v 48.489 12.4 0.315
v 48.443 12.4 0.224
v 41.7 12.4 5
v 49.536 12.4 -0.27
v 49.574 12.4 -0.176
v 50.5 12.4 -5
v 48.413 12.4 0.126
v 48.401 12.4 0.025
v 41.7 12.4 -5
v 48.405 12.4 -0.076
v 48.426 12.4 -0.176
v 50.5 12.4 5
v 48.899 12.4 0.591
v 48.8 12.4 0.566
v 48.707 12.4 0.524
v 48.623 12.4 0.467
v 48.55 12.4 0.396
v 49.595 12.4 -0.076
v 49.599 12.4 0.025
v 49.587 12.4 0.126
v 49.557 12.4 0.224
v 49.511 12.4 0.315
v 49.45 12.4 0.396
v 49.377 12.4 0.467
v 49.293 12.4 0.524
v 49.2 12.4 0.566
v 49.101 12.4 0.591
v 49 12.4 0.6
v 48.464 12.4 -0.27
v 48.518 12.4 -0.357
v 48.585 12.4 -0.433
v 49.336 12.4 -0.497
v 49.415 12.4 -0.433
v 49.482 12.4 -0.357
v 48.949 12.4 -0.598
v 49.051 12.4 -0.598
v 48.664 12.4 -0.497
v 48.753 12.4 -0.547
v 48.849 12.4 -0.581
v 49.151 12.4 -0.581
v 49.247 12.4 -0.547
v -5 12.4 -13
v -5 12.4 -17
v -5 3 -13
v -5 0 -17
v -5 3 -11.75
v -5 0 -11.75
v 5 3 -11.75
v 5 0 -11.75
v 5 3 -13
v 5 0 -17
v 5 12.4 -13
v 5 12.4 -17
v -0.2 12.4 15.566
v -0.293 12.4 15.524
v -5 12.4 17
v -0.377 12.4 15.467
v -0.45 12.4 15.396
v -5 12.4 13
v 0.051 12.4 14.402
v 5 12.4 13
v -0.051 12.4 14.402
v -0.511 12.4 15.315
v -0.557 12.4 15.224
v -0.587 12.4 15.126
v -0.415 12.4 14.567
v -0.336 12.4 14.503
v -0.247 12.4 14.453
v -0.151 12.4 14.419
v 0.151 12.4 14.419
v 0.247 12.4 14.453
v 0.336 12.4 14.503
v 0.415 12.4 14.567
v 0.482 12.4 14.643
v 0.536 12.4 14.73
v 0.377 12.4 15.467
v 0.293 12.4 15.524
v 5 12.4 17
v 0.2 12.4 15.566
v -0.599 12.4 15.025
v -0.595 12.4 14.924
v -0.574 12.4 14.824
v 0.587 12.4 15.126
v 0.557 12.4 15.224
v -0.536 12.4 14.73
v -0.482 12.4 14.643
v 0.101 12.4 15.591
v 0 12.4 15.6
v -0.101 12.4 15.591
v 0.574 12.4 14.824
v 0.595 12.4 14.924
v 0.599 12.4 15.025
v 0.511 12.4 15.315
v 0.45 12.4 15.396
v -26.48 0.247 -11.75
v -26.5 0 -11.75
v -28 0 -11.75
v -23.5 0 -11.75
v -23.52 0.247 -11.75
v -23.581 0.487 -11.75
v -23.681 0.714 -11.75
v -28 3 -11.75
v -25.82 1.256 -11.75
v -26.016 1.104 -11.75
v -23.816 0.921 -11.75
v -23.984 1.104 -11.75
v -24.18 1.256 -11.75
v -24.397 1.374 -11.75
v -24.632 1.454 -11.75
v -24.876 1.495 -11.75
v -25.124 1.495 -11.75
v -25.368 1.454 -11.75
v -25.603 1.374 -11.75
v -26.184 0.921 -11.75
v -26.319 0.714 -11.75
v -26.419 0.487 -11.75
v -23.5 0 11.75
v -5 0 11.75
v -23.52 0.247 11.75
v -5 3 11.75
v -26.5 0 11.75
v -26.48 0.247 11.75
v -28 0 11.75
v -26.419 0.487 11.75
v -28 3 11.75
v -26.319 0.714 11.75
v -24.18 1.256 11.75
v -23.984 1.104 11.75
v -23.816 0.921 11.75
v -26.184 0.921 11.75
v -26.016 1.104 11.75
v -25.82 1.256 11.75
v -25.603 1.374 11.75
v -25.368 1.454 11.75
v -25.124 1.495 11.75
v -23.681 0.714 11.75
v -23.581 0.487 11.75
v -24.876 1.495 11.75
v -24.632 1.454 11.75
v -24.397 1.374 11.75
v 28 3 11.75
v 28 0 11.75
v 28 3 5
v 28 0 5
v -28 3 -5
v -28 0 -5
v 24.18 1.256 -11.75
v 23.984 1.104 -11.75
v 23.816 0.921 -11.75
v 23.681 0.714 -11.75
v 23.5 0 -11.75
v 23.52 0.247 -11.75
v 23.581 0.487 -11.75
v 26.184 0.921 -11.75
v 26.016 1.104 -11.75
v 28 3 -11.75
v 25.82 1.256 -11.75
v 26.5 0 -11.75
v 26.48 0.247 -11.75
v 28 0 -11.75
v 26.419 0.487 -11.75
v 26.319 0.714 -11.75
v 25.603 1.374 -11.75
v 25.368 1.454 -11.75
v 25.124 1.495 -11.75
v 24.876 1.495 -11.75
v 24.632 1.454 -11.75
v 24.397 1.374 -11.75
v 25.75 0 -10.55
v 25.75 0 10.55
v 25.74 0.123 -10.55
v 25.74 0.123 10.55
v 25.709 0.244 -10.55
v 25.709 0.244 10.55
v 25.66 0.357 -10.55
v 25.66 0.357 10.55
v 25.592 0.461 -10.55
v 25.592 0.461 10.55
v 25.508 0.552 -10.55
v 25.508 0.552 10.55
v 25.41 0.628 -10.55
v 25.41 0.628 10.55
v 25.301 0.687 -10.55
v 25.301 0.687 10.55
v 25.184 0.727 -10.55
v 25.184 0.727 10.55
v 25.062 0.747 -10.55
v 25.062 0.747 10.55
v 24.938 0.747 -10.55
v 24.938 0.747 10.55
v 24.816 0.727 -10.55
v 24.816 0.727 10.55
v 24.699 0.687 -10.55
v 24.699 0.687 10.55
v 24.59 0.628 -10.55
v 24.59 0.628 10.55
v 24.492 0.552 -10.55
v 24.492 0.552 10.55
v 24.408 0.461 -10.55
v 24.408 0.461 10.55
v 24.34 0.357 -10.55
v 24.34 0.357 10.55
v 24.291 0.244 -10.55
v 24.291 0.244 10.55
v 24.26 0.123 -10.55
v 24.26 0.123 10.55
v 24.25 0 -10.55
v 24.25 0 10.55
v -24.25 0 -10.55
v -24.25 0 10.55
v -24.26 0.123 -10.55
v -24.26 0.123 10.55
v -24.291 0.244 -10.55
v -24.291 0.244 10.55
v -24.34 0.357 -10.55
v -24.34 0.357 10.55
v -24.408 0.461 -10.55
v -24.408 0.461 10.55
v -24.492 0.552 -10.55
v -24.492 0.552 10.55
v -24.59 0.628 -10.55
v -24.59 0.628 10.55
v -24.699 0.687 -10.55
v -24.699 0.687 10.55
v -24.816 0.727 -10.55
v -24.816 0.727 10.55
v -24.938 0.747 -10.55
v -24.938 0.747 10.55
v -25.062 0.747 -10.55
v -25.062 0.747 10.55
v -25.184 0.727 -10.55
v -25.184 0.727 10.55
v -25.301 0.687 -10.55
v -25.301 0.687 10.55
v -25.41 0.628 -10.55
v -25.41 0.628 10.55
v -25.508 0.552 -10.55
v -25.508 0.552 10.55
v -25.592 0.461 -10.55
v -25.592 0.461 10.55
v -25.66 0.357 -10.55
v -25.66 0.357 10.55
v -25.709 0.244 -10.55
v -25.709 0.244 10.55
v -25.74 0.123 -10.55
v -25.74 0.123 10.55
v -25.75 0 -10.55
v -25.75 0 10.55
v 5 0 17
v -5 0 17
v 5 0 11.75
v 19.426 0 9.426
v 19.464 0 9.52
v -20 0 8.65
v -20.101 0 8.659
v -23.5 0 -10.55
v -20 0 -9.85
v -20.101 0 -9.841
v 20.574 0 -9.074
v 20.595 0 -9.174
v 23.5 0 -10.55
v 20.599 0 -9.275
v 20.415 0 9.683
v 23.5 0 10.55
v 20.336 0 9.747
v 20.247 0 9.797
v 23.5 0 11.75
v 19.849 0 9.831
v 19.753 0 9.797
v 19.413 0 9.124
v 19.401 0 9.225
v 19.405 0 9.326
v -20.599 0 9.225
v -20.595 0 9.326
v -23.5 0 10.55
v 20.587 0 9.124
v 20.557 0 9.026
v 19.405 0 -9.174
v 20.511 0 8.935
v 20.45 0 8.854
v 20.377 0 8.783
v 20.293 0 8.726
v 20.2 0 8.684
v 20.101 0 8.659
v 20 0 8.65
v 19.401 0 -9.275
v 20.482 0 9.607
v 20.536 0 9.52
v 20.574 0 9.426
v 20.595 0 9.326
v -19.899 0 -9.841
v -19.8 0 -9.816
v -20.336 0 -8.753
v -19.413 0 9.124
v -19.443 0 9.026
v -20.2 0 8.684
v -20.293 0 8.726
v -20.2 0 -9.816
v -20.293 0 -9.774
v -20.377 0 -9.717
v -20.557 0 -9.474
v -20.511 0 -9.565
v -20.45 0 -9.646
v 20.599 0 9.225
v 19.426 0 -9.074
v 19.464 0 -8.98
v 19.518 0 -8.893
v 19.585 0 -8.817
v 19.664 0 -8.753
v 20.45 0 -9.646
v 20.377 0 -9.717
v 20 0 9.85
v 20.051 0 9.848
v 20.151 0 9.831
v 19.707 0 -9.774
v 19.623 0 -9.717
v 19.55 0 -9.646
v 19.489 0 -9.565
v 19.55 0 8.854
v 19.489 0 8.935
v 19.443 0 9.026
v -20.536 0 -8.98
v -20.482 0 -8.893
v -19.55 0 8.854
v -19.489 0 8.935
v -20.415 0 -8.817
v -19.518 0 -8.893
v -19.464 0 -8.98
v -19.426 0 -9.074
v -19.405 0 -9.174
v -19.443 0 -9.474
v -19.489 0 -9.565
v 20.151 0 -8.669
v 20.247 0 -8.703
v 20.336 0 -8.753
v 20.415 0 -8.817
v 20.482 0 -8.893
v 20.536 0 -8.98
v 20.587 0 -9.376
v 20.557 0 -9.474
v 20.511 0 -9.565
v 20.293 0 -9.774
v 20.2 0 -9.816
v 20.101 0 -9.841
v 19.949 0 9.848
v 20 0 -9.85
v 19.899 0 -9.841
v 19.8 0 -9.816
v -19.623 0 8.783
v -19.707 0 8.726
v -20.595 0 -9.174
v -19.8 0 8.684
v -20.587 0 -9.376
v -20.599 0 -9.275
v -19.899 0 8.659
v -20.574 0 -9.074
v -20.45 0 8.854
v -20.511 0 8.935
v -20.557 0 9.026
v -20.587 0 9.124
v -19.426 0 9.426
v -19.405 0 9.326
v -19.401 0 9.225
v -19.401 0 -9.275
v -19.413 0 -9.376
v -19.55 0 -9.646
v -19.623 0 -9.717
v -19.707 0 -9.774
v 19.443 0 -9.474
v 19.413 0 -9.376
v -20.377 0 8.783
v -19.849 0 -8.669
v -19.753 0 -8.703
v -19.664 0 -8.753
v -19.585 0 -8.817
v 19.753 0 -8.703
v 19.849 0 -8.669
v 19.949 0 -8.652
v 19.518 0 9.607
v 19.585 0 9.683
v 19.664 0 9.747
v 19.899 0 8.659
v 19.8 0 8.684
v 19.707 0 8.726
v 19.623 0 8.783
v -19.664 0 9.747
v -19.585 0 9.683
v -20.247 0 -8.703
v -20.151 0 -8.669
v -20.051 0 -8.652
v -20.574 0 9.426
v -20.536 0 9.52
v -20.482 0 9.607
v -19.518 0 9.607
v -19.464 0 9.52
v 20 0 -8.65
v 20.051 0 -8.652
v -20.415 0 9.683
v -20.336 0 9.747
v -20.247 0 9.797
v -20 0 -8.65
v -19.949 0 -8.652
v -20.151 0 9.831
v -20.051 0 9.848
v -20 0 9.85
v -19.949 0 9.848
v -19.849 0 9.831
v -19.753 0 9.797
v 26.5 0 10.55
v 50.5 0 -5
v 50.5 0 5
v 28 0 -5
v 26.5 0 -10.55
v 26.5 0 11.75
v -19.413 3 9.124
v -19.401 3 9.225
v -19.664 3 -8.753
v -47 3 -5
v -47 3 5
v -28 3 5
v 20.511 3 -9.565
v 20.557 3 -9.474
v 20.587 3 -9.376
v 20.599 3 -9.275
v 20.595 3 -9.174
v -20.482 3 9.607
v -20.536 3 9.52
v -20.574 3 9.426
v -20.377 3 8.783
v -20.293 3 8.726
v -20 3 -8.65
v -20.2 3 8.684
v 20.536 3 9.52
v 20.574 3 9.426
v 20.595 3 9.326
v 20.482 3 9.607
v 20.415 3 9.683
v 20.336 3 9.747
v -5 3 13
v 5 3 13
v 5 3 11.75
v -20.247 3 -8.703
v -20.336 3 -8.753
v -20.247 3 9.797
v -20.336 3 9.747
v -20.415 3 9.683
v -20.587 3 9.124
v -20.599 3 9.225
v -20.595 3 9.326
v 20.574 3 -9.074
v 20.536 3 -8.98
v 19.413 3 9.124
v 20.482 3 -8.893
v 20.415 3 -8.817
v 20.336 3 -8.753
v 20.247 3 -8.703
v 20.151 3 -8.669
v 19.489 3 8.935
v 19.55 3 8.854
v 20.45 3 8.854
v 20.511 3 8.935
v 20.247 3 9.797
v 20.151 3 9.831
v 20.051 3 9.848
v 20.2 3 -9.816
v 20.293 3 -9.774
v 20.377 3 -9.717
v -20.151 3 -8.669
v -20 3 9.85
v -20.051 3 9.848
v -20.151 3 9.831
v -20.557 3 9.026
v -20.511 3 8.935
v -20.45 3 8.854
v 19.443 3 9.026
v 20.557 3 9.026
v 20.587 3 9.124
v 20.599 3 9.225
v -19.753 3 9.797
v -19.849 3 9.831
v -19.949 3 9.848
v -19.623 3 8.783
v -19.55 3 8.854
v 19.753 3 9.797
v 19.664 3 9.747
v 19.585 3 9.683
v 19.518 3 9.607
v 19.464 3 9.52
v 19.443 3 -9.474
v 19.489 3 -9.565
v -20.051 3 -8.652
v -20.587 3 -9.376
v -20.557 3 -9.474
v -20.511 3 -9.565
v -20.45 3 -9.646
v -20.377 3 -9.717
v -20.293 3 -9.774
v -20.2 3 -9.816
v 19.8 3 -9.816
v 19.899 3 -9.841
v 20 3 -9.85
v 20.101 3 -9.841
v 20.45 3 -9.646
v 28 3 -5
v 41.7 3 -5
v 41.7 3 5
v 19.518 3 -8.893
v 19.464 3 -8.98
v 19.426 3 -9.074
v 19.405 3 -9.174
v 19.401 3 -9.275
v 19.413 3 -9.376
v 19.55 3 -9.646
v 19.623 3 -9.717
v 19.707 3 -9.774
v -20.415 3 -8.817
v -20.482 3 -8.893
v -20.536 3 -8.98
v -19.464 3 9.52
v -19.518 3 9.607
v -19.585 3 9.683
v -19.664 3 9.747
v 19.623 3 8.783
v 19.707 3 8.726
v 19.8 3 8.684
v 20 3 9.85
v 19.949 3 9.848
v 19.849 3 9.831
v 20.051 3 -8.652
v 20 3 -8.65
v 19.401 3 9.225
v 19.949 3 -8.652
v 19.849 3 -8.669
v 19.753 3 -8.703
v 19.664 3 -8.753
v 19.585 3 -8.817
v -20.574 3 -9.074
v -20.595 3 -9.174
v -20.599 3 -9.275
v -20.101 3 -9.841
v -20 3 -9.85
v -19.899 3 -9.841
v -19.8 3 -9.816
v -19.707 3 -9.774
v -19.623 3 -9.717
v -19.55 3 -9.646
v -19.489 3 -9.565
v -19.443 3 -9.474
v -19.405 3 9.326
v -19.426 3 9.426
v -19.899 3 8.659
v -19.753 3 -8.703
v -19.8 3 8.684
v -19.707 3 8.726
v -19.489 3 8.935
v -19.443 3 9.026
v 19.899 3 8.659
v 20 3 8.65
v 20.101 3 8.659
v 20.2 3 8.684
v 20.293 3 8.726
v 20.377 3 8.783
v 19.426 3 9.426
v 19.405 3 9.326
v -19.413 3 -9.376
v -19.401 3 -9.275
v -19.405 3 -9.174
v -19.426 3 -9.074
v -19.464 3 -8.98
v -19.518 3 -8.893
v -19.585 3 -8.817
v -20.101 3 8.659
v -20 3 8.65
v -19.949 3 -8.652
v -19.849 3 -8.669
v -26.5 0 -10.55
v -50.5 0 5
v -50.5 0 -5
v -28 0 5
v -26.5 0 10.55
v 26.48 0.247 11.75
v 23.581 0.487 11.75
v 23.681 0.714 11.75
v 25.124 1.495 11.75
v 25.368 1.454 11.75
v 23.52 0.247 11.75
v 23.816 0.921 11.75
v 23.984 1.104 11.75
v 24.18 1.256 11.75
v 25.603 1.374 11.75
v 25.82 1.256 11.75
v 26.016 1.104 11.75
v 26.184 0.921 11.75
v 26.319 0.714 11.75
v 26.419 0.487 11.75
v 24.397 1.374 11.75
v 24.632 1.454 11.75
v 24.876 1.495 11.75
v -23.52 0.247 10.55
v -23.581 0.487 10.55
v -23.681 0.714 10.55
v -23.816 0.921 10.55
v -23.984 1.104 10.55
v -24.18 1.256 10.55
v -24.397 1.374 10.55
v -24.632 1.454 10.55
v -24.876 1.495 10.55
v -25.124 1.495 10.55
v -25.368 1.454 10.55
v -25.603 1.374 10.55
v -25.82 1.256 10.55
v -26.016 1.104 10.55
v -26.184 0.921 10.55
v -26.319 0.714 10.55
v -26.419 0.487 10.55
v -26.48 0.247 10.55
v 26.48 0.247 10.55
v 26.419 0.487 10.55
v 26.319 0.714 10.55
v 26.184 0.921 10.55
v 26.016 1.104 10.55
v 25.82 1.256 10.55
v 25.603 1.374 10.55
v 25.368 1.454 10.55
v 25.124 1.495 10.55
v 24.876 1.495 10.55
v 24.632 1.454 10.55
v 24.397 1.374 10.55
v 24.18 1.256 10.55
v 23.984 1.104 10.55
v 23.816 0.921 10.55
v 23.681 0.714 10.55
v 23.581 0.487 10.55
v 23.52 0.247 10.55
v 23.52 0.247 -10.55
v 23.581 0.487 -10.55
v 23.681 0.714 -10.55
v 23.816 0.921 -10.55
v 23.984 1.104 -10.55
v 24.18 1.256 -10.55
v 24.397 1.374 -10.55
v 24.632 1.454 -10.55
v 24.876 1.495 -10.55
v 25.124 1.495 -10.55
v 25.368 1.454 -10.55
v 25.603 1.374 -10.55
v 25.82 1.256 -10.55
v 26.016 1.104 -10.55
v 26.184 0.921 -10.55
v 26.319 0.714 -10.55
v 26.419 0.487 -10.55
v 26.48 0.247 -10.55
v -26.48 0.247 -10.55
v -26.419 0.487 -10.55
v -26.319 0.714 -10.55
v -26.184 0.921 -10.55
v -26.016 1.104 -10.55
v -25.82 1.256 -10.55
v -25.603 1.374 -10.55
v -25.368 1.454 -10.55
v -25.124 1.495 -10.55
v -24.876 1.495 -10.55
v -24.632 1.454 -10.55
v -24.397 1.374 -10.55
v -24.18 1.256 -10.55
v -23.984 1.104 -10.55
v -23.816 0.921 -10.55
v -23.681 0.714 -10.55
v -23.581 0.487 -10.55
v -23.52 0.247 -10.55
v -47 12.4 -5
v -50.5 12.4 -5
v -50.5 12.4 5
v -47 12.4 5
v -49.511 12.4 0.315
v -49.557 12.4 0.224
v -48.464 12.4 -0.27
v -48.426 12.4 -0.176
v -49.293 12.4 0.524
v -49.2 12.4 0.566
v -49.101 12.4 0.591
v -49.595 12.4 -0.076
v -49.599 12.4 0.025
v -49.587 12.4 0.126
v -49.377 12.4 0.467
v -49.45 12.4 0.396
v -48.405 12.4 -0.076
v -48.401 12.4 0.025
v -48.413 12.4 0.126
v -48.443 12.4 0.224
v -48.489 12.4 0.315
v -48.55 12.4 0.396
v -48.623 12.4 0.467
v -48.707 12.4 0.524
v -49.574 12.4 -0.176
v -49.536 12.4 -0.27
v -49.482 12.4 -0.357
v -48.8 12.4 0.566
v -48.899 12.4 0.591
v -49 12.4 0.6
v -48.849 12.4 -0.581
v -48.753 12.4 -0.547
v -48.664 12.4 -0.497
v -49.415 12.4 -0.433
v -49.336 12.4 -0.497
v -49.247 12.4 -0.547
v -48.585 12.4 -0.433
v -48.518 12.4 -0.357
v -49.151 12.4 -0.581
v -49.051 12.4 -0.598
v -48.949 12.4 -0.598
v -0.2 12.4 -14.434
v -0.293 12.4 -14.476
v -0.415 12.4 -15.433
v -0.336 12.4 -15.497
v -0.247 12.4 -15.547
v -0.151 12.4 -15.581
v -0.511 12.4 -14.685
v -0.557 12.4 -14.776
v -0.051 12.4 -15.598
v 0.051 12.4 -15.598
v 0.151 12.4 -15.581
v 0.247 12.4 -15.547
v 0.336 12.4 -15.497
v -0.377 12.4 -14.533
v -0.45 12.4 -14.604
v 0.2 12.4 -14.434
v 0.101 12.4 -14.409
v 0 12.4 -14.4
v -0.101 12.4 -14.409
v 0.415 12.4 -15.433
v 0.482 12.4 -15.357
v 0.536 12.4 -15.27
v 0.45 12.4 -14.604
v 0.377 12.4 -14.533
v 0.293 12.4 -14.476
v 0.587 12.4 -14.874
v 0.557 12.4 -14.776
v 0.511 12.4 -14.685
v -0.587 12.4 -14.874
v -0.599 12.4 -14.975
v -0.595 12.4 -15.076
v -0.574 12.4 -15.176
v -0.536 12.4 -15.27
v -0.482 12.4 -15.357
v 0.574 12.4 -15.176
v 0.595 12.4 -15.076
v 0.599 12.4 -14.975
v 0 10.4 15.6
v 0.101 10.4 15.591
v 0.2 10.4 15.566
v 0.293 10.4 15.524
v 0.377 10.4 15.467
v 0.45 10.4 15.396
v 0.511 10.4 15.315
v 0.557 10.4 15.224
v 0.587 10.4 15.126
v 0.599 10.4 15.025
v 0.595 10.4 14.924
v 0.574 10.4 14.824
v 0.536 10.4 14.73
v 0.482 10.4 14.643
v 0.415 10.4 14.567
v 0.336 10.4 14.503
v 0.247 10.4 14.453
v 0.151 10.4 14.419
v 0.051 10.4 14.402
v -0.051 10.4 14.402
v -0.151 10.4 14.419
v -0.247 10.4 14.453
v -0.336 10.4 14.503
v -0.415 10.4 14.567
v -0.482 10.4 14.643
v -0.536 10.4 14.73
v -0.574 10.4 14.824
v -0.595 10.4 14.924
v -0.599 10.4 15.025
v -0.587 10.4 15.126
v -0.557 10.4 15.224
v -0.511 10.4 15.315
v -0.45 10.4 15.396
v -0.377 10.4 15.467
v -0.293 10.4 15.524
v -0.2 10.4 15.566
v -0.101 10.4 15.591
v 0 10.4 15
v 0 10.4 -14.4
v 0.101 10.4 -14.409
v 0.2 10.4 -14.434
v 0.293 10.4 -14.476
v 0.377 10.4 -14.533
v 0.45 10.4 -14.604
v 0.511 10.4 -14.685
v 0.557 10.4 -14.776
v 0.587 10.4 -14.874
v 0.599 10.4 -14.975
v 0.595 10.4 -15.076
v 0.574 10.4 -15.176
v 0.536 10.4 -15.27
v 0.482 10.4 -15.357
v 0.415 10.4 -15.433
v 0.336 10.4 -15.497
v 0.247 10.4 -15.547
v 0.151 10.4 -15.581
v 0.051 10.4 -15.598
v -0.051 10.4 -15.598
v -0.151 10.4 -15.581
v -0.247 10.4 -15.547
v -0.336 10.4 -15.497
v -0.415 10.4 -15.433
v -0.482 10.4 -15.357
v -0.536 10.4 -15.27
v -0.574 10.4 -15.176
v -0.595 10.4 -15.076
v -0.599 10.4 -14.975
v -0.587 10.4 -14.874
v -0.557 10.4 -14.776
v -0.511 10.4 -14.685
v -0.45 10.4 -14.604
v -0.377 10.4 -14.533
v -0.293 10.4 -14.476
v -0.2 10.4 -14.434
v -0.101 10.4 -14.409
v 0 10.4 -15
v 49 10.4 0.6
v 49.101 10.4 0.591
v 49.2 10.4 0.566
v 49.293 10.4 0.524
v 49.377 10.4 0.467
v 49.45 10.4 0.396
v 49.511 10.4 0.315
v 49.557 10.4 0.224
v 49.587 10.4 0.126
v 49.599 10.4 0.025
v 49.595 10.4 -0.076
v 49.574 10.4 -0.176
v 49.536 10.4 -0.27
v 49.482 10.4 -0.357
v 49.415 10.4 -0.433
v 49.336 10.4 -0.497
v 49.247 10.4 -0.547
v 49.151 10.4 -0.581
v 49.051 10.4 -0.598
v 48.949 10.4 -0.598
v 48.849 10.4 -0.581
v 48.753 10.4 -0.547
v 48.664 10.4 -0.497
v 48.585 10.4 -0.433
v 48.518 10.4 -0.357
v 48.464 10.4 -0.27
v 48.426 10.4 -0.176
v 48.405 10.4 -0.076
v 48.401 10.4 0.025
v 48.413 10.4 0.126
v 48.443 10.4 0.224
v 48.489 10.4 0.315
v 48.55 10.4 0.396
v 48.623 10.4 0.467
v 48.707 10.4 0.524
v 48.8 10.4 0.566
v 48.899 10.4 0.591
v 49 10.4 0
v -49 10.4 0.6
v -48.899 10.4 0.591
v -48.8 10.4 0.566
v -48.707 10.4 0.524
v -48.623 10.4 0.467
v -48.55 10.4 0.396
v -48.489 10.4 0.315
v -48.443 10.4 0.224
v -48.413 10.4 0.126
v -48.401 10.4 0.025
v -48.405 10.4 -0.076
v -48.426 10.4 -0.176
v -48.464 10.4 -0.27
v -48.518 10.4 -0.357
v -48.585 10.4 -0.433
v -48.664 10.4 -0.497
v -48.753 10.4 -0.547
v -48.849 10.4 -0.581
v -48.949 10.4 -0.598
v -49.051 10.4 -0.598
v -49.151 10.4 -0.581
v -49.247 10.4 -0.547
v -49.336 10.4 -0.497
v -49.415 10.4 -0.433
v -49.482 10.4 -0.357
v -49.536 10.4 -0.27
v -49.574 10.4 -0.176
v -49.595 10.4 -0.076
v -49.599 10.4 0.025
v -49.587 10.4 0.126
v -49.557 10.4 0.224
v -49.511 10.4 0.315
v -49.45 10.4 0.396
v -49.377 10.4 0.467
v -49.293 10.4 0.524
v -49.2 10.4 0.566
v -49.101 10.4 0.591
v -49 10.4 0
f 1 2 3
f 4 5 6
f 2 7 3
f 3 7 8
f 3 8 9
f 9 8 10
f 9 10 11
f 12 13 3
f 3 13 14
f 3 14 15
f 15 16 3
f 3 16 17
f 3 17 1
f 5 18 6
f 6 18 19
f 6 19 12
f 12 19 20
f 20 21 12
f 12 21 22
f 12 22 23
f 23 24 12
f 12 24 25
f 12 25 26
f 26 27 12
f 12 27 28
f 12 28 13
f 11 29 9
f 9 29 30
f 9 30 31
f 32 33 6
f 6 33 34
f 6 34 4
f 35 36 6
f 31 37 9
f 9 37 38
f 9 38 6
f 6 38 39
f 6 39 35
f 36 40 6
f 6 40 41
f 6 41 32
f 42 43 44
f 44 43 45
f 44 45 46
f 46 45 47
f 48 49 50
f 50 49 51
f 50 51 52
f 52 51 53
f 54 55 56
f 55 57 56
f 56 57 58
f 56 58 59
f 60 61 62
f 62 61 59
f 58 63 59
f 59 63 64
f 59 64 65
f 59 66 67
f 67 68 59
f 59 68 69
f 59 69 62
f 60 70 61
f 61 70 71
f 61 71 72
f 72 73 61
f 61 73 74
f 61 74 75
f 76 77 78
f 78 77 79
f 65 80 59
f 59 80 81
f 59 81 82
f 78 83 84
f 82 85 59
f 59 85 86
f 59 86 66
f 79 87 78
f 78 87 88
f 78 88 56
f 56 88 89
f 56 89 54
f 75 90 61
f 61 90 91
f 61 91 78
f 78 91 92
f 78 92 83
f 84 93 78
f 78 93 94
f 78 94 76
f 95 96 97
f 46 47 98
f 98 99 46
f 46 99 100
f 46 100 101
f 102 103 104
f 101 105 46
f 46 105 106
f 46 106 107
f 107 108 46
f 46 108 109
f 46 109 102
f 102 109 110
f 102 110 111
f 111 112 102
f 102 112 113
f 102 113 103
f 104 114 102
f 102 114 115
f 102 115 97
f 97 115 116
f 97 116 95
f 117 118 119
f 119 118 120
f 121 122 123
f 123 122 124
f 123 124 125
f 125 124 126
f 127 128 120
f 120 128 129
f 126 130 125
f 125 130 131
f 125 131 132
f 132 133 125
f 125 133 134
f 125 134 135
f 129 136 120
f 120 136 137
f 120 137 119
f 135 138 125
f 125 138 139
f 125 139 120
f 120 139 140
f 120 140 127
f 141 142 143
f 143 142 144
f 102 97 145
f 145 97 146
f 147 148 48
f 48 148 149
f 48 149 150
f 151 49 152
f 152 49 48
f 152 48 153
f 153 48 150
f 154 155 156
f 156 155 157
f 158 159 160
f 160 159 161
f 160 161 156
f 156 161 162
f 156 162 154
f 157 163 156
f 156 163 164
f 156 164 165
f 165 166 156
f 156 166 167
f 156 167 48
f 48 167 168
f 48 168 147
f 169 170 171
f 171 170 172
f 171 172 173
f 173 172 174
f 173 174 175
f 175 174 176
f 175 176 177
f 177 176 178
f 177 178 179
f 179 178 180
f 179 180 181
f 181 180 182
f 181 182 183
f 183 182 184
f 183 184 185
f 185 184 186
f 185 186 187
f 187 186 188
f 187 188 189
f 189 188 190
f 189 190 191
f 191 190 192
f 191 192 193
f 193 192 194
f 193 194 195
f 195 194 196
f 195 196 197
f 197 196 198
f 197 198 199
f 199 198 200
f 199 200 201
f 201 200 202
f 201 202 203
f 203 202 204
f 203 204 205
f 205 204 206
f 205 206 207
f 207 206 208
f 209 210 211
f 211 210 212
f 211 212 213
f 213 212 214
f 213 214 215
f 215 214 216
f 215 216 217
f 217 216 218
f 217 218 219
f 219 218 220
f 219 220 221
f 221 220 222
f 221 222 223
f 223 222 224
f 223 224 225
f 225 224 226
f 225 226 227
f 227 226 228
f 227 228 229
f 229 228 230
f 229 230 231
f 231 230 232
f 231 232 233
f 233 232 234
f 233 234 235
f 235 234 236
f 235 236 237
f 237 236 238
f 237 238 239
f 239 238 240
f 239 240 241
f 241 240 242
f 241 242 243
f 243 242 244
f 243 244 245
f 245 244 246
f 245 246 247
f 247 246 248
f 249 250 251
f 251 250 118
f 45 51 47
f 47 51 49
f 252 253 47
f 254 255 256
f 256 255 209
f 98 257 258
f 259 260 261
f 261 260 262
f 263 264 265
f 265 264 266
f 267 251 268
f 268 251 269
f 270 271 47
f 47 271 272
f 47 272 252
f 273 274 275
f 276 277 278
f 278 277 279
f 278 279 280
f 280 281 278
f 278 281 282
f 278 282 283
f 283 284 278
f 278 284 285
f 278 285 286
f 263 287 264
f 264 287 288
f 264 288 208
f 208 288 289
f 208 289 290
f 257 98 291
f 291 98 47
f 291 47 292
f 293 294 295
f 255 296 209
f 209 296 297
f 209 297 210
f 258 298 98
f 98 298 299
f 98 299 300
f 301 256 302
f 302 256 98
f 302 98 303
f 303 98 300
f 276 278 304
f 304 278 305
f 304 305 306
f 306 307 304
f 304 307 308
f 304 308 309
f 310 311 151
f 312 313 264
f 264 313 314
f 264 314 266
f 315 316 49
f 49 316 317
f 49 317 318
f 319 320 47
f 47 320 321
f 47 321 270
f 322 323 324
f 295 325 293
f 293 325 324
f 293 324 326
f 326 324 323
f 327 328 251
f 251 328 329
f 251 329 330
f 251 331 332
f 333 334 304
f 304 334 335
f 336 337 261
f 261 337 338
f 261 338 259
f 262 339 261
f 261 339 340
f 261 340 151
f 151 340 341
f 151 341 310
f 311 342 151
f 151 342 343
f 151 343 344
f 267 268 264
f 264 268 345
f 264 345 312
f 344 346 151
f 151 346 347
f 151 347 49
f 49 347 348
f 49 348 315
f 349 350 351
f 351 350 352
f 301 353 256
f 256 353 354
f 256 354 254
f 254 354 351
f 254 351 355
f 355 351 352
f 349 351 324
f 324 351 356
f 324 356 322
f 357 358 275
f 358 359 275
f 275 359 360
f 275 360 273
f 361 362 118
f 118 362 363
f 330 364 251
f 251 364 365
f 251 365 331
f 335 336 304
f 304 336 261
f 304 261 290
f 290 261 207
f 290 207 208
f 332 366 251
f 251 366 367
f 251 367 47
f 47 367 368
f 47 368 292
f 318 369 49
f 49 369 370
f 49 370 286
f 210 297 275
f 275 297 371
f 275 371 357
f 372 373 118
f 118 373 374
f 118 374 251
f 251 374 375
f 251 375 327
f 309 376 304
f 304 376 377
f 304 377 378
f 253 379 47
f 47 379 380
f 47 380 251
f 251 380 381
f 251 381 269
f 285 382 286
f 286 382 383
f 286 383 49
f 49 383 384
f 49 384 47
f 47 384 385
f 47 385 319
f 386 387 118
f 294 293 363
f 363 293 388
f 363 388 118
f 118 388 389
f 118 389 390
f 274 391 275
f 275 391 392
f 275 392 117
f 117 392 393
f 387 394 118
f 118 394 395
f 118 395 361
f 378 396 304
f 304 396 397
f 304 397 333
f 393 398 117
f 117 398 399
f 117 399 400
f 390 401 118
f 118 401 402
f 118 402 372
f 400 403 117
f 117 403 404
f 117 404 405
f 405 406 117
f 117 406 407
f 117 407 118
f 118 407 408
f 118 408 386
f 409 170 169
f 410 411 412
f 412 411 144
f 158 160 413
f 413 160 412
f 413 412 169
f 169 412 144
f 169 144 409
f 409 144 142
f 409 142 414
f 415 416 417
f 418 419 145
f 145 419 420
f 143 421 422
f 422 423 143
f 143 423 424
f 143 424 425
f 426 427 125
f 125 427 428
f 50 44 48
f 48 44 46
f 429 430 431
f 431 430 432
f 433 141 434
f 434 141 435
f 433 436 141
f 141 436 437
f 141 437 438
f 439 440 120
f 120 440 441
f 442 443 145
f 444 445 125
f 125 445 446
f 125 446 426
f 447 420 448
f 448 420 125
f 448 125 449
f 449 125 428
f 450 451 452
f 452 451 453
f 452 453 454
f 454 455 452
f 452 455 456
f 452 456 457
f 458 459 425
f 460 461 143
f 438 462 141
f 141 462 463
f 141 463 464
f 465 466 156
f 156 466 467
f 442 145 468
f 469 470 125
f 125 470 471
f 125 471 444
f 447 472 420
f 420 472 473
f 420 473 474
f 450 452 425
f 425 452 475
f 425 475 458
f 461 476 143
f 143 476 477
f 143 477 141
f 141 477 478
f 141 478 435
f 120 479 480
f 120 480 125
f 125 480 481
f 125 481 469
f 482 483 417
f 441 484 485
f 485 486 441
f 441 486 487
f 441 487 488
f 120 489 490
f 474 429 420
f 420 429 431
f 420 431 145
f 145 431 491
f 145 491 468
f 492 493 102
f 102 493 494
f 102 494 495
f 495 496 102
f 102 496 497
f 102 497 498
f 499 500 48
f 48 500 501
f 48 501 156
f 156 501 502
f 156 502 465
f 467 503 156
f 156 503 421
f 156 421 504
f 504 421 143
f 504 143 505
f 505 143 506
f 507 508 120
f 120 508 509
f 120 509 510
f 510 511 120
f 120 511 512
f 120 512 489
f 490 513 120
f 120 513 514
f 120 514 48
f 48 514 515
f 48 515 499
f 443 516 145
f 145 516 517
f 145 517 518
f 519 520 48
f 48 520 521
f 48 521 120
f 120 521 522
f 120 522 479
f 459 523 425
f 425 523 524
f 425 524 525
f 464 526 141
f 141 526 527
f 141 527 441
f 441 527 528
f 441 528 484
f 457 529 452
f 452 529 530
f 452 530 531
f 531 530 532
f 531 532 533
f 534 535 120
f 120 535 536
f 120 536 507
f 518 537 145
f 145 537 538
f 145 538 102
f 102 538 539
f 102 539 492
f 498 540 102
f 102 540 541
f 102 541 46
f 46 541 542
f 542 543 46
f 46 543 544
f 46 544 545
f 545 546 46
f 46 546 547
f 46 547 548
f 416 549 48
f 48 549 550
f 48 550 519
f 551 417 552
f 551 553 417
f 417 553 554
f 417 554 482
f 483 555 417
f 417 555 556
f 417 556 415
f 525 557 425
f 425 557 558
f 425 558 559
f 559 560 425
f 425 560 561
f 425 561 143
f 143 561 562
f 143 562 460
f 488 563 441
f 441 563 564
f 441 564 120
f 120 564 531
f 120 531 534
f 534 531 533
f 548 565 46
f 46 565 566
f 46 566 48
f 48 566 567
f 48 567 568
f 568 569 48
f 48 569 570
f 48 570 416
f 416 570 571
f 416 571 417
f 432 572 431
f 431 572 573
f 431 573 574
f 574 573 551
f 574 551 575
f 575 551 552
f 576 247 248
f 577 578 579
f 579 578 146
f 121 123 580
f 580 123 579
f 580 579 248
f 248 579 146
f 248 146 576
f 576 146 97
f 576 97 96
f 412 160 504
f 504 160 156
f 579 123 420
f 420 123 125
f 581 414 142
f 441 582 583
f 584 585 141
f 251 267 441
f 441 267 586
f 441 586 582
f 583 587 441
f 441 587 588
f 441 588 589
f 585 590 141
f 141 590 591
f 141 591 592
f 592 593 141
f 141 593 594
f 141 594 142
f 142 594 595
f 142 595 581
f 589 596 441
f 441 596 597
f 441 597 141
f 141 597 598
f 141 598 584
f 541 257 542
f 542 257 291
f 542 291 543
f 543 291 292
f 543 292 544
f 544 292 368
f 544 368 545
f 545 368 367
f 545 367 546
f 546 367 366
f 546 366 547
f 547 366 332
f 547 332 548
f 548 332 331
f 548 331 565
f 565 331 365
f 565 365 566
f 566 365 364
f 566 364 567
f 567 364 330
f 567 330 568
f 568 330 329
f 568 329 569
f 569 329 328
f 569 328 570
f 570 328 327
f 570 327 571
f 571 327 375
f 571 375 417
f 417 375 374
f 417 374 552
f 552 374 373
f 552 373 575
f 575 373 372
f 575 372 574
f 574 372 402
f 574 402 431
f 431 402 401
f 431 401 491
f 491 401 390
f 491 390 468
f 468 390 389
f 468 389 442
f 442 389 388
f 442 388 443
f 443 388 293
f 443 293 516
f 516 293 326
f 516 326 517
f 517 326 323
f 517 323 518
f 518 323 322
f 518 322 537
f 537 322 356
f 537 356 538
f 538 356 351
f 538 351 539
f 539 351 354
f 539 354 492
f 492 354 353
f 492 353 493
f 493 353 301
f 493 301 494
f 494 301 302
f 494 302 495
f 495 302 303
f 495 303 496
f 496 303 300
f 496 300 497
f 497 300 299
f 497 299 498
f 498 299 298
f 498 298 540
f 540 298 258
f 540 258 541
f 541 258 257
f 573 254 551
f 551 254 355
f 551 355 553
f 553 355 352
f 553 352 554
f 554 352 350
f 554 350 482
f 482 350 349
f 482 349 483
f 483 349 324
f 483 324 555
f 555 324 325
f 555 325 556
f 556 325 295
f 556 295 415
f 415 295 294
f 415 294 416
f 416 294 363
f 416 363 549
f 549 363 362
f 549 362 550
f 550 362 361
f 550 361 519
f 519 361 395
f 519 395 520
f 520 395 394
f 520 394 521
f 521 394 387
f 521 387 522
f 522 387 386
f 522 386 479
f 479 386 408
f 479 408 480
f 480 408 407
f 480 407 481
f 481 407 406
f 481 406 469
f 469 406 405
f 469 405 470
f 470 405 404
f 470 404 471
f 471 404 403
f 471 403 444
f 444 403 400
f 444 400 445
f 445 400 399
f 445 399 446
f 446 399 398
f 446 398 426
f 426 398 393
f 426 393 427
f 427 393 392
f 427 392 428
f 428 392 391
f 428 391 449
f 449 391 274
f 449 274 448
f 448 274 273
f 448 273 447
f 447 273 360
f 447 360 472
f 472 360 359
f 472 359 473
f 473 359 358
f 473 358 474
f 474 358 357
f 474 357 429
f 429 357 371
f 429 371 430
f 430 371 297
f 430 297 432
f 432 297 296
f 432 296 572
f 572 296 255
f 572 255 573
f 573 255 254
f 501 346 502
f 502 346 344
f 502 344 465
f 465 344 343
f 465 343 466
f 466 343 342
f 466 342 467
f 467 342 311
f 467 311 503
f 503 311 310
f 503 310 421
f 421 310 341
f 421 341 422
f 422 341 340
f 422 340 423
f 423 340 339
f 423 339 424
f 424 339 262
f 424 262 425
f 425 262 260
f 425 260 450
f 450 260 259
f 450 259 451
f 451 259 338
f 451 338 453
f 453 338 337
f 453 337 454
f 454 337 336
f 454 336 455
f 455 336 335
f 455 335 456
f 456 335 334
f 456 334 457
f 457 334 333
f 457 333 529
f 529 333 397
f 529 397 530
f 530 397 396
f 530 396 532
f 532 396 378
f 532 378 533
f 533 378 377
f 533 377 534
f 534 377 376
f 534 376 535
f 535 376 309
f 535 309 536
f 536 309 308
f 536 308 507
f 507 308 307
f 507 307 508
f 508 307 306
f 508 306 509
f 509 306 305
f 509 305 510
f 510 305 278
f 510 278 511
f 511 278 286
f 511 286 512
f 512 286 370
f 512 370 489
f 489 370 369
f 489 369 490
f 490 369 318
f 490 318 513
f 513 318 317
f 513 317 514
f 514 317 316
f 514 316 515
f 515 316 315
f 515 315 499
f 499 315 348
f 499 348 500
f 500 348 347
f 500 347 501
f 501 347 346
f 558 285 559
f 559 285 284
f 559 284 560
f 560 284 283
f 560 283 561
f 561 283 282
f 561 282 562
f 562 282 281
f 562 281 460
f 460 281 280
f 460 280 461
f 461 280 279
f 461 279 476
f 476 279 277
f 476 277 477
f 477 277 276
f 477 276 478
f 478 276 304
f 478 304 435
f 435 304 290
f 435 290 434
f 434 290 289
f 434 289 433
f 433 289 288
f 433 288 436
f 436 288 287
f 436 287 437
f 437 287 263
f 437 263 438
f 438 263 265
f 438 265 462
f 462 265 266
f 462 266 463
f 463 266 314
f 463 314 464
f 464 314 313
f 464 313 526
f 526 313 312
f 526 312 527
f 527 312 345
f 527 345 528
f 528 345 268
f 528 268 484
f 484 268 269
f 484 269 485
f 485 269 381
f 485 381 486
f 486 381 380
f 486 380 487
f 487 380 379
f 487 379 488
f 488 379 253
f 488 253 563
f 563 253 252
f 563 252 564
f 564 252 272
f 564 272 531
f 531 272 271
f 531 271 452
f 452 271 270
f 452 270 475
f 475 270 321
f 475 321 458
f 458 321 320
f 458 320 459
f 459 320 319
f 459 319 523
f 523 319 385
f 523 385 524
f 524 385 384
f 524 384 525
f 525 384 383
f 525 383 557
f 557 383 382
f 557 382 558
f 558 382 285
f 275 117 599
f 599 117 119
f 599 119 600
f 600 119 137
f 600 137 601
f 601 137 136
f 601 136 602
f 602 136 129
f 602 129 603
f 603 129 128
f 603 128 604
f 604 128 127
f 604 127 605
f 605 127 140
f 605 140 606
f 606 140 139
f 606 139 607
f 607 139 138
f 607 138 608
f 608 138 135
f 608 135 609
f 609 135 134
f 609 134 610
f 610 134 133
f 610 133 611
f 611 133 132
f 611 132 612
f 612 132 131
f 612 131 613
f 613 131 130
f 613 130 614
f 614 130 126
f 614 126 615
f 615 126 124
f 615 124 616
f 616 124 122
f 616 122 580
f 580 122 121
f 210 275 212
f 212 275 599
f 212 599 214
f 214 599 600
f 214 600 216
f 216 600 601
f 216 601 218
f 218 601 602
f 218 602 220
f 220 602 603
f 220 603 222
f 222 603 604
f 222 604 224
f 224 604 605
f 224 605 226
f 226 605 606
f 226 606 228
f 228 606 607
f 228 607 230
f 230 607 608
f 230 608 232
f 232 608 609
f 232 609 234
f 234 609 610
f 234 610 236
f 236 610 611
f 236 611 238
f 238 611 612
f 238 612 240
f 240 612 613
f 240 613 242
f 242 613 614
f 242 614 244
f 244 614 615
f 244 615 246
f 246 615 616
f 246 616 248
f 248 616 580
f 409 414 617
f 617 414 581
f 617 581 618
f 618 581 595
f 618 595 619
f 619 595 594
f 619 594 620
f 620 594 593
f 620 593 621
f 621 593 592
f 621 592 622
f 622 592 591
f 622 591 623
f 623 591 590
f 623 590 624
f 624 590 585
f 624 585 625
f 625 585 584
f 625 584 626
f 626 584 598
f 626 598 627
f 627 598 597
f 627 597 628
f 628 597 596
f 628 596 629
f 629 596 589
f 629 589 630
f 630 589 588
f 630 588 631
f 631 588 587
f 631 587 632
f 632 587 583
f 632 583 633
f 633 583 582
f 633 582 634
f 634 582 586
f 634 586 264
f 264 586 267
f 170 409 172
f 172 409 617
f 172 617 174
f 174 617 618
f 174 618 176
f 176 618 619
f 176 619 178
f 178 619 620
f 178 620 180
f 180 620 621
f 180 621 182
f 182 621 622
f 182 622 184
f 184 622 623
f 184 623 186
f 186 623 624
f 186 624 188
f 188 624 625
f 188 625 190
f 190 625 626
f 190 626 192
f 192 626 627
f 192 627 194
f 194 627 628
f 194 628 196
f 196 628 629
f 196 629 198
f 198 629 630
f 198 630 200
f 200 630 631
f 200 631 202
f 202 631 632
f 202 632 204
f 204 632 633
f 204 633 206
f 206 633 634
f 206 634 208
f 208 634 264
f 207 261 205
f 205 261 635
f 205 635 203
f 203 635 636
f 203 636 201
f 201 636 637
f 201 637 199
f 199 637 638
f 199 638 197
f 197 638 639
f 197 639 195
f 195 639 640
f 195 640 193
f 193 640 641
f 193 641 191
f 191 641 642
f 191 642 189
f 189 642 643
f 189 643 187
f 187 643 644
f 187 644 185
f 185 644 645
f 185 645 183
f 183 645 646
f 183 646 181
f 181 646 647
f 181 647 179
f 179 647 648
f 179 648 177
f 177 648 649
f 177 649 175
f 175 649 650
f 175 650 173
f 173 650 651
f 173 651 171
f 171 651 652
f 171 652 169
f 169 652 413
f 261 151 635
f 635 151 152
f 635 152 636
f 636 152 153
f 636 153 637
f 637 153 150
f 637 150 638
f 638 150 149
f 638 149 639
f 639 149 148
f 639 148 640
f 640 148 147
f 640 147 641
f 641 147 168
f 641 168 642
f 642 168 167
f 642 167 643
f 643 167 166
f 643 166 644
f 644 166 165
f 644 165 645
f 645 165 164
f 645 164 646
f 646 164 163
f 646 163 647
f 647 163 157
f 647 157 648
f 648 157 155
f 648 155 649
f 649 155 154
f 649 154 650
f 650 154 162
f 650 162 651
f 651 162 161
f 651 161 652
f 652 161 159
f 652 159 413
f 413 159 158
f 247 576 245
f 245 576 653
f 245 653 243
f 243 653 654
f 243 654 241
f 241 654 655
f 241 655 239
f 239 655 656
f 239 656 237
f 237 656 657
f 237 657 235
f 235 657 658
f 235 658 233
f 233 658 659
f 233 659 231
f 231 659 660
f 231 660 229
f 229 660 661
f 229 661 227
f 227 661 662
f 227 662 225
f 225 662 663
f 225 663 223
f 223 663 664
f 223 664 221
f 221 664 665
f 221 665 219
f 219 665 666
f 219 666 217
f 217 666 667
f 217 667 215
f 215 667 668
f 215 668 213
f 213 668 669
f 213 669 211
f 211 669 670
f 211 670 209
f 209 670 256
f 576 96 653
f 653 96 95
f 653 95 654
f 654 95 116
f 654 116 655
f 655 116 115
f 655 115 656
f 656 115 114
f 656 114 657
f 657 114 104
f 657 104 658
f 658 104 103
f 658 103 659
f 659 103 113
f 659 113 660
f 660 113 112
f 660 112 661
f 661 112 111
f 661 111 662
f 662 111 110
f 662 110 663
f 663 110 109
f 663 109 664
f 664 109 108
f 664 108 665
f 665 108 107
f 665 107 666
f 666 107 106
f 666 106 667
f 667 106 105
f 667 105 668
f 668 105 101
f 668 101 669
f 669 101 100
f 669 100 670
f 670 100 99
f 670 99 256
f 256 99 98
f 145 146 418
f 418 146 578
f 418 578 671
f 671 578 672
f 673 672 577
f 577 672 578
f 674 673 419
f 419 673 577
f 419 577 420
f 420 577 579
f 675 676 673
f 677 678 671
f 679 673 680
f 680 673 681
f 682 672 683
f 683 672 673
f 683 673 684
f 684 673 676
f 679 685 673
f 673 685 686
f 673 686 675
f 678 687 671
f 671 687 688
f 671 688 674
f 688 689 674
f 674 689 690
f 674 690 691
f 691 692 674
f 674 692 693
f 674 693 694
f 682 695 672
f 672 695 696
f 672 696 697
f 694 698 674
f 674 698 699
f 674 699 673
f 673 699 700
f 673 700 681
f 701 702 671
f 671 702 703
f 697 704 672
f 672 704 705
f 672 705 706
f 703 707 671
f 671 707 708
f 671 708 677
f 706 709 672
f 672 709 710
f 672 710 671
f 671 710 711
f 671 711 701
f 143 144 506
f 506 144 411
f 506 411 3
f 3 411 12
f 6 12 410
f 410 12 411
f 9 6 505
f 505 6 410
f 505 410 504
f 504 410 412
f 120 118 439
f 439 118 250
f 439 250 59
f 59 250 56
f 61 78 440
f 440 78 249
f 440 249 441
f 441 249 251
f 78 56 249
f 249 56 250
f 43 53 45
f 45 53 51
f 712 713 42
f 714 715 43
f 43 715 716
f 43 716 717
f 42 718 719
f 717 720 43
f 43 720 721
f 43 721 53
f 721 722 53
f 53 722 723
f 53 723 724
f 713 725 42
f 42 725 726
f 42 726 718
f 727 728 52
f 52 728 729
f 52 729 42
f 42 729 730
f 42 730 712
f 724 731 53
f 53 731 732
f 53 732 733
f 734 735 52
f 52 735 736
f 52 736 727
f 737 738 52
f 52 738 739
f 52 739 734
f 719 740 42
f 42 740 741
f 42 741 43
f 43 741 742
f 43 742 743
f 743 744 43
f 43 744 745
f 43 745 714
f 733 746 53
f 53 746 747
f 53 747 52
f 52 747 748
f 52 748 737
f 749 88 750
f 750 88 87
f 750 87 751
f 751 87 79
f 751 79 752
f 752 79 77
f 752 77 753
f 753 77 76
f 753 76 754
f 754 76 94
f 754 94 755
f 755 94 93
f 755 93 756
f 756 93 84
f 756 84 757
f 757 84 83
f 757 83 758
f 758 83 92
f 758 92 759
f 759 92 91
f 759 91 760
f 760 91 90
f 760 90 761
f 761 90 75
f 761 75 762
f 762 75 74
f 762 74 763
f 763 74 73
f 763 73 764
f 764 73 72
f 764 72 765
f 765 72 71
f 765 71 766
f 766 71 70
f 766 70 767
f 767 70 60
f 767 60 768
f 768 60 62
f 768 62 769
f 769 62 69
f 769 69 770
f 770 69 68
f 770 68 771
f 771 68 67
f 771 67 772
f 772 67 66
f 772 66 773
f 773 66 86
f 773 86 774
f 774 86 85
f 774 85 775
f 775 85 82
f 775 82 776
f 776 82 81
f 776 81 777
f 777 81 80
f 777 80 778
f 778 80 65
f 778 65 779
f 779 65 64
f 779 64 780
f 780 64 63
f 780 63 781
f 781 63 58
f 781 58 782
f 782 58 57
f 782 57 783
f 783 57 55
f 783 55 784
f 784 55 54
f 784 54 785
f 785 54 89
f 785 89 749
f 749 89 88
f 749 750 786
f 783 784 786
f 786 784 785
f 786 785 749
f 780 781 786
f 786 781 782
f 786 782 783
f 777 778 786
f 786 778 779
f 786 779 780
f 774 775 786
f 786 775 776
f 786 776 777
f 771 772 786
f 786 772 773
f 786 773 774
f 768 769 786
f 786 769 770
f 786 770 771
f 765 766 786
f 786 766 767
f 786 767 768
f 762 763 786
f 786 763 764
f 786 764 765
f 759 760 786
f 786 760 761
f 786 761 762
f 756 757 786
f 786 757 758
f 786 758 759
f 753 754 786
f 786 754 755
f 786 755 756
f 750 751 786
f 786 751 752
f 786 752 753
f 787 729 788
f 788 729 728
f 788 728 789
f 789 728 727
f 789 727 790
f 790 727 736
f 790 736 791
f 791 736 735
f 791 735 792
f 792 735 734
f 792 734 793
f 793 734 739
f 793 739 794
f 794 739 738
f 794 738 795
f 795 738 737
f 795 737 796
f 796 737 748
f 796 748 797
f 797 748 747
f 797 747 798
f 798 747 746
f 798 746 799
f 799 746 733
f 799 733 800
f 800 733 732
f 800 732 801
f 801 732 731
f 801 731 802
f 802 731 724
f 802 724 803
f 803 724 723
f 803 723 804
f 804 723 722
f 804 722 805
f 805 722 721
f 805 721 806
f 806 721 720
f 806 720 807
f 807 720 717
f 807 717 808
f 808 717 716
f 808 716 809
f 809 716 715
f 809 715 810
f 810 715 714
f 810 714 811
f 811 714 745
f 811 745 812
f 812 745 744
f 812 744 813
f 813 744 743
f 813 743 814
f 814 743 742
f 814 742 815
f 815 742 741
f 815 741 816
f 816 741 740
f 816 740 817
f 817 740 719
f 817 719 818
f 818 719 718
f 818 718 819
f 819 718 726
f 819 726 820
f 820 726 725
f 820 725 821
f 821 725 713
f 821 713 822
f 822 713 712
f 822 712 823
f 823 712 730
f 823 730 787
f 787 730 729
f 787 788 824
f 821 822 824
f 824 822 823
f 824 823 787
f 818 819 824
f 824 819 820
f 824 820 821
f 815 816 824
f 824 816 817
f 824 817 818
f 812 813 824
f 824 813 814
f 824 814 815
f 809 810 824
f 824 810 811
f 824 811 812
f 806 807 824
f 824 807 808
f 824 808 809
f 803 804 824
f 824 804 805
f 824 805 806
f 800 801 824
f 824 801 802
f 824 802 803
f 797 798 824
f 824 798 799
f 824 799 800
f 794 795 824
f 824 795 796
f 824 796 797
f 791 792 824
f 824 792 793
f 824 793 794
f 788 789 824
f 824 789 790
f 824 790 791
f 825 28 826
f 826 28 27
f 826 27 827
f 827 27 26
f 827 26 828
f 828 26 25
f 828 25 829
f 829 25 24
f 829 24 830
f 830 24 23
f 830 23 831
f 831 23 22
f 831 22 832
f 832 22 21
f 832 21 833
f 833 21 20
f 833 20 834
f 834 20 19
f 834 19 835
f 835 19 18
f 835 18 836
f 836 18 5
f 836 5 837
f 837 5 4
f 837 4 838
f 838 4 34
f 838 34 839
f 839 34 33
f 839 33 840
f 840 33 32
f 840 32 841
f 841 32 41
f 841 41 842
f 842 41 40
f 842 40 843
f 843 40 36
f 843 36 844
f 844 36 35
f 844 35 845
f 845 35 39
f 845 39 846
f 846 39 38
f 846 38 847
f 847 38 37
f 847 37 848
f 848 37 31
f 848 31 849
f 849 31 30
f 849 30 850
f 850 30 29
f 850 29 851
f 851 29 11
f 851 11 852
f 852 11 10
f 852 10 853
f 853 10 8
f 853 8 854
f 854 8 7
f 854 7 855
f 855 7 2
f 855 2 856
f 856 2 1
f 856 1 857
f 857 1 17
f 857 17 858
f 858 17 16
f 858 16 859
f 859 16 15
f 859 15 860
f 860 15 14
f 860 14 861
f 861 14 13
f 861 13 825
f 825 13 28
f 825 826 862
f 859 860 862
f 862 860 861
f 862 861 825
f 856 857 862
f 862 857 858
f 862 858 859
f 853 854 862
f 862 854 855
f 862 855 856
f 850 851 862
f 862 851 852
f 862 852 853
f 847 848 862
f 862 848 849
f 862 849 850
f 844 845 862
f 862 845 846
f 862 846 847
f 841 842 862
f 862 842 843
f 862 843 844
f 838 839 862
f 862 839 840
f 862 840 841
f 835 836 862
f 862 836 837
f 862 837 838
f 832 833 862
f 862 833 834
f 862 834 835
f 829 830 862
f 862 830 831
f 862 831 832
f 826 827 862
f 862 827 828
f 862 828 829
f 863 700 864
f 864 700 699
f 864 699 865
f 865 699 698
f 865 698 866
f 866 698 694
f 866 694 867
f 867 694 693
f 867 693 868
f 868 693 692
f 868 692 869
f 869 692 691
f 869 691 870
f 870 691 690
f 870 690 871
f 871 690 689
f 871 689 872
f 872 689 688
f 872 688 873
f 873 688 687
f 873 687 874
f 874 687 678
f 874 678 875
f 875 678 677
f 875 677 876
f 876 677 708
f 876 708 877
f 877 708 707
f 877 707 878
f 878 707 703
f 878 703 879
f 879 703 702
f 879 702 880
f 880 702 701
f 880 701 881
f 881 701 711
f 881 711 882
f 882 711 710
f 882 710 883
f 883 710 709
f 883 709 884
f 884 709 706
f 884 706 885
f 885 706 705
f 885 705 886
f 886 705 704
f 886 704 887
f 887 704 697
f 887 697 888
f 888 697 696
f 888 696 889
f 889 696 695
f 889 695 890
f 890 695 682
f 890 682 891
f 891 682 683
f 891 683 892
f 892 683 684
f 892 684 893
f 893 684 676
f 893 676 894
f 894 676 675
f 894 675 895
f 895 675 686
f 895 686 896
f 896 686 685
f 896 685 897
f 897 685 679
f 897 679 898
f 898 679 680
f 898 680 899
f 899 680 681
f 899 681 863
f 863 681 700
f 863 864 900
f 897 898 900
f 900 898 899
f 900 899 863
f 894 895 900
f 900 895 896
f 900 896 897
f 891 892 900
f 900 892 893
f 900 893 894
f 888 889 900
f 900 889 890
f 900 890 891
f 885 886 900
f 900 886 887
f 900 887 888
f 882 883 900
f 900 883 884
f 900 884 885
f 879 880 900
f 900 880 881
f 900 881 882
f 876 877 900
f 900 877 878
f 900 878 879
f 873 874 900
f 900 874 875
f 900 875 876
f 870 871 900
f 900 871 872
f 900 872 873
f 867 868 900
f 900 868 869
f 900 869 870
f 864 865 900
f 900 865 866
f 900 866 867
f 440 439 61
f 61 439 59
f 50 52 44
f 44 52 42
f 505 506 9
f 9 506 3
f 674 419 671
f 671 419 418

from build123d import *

# Parameters (mm, degrees)
SKETCH_1_W          = 56
SKETCH_1_H          = 23.5
SKETCH_1_R          = 0.6
EXTRUDE_1_DEPTH     = 3
SKETCH_2_R          = 0.75
CUT_EXTRUDE_1_DEPTH = 37.67764987
SKETCH_2_3_R        = 1.5
SKETCH_2_3_R_2      = 0.75
CUT_EXTRUDE_2_DEPTH = 1.2
CUT_EXTRUDE_START   = -22.3
SKETCH_2_4_R        = 1.5
SKETCH_2_4_R_2      = 0.75
CUT_EXTRUDE_3_DEPTH = 1.2
SKETCH_3_W          = 22.5
SKETCH_3_H          = 10
SKETCH_3_W_2        = 10
SKETCH_3_H_2        = 34
EXTRUDE_2_DEPTH     = 12.4
SKETCH_4_R          = 0.6
CUT_EXTRUDE_4_DEPTH = 2
SKETCH_5_W          = 84.5
SKETCH_5_H          = 26
SKETCH_5_W_2        = 4.2
SKETCH_5_H_2        = 15.1
CUT_EXTRUDE_5_DEPTH = 9.4


with BuildPart() as part:
    # 草图1 → 凸台-拉伸1 (new body)
    with BuildSketch(Plane(origin=(0, 0, 0), x_dir=(1, 0, 0), z_dir=(0, 1, 0))):
        Rectangle(SKETCH_1_W, SKETCH_1_H)
        with Locations(Location((-20, 9.25, 0), (0, 0, 270))):
            Circle(SKETCH_1_R, mode=Mode.SUBTRACT)
        with Locations(Location((-20, -9.25, 0), (0, 0, 270))):
            Circle(SKETCH_1_R, mode=Mode.SUBTRACT)
        with Locations(Location((20, 9.25, 0), (0, 0, 270))):
            Circle(SKETCH_1_R, mode=Mode.SUBTRACT)
        with Locations(Location((20, -9.25, 0), (0, 0, 270))):
            Circle(SKETCH_1_R, mode=Mode.SUBTRACT)
    extrude(amount=EXTRUDE_1_DEPTH)

    # 草图2 → 切除-拉伸1 (cut, through all)
    with BuildSketch(Plane.XY.offset(11.75)):
        with Locations((-25, 0)):
            Circle(SKETCH_2_R)
        with Locations((25, 0)):
            Circle(SKETCH_2_R)
    extrude(amount=-CUT_EXTRUDE_1_DEPTH, mode=Mode.SUBTRACT)

    # 草图2<3> → 切除-拉伸2 (cut)
    # profile 1 of 2: a face of its own
    with BuildSketch(Plane.XY.offset(11.75)):
        with Locations((-25, 0)):
            Circle(SKETCH_2_3_R)
        with Locations((-25, 0)):
            Circle(SKETCH_2_3_R_2, mode=Mode.SUBTRACT)
    # profile 2 of 2: a face of its own
    with BuildSketch(Plane.XY.offset(11.75)):
        with Locations((25, 0)):
            Circle(SKETCH_2_3_R)
        with Locations((25, 0)):
            Circle(SKETCH_2_3_R_2, mode=Mode.SUBTRACT)
    extrude(amount=-CUT_EXTRUDE_2_DEPTH, mode=Mode.SUBTRACT)

    # 草图2<4> → 切除-拉伸3 (cut)
    # profile 1 of 2: a face of its own
    with BuildSketch(Plane.XY.offset(11.75).offset(CUT_EXTRUDE_START)):
        with Locations((-25, 0)):
            Circle(SKETCH_2_4_R)
        with Locations((-25, 0)):
            Circle(SKETCH_2_4_R_2, mode=Mode.SUBTRACT)
    # profile 2 of 2: a face of its own
    with BuildSketch(Plane.XY.offset(11.75).offset(CUT_EXTRUDE_START)):
        with Locations((25, 0)):
            Circle(SKETCH_2_4_R)
        with Locations((25, 0)):
            Circle(SKETCH_2_4_R_2, mode=Mode.SUBTRACT)
    extrude(amount=-CUT_EXTRUDE_3_DEPTH, mode=Mode.SUBTRACT)

    # 草图3 → 凸台-拉伸2 (add)
    with BuildSketch(Plane.XZ):
        with Locations((-39.25, 0)):
            Rectangle(SKETCH_3_W, SKETCH_3_H)
        with Locations((39.25, 0)):
            Rectangle(SKETCH_3_W, SKETCH_3_H)
        Rectangle(SKETCH_3_W_2, SKETCH_3_H_2)
    extrude(amount=-EXTRUDE_2_DEPTH)

    # 草图4 → 切除-拉伸4 (cut)
    with BuildSketch(Plane(origin=(0, 12.4, 0), x_dir=(1, 0, 0), z_dir=(0, 1, 0))):
        with Locations(Location((0, 15, 0), (0, 0, 270))):
            Circle(SKETCH_4_R)
        with Locations(Location((0, -15, 0), (0, 0, 270))):
            Circle(SKETCH_4_R)
        with Locations(Location((49, 0, 0), (0, 0, 270))):
            Circle(SKETCH_4_R)
        with Locations(Location((-49, 0, 0), (0, 0, 270))):
            Circle(SKETCH_4_R)
    extrude(amount=-CUT_EXTRUDE_4_DEPTH, mode=Mode.SUBTRACT)

    # 草图5 → 切除-拉伸5 (cut)
    with BuildSketch(Plane(origin=(0, 12.4, 0), x_dir=(1, 0, 0), z_dir=(0, 1, 0))):
        with Locations((-0.55, 0)):
            Rectangle(SKETCH_5_W, SKETCH_5_H)
        with Locations((-44.9, 0.45)):
            Rectangle(SKETCH_5_W_2, SKETCH_5_H_2)
    extrude(amount=-CUT_EXTRUDE_5_DEPTH, mode=Mode.SUBTRACT)


solid = part.part
